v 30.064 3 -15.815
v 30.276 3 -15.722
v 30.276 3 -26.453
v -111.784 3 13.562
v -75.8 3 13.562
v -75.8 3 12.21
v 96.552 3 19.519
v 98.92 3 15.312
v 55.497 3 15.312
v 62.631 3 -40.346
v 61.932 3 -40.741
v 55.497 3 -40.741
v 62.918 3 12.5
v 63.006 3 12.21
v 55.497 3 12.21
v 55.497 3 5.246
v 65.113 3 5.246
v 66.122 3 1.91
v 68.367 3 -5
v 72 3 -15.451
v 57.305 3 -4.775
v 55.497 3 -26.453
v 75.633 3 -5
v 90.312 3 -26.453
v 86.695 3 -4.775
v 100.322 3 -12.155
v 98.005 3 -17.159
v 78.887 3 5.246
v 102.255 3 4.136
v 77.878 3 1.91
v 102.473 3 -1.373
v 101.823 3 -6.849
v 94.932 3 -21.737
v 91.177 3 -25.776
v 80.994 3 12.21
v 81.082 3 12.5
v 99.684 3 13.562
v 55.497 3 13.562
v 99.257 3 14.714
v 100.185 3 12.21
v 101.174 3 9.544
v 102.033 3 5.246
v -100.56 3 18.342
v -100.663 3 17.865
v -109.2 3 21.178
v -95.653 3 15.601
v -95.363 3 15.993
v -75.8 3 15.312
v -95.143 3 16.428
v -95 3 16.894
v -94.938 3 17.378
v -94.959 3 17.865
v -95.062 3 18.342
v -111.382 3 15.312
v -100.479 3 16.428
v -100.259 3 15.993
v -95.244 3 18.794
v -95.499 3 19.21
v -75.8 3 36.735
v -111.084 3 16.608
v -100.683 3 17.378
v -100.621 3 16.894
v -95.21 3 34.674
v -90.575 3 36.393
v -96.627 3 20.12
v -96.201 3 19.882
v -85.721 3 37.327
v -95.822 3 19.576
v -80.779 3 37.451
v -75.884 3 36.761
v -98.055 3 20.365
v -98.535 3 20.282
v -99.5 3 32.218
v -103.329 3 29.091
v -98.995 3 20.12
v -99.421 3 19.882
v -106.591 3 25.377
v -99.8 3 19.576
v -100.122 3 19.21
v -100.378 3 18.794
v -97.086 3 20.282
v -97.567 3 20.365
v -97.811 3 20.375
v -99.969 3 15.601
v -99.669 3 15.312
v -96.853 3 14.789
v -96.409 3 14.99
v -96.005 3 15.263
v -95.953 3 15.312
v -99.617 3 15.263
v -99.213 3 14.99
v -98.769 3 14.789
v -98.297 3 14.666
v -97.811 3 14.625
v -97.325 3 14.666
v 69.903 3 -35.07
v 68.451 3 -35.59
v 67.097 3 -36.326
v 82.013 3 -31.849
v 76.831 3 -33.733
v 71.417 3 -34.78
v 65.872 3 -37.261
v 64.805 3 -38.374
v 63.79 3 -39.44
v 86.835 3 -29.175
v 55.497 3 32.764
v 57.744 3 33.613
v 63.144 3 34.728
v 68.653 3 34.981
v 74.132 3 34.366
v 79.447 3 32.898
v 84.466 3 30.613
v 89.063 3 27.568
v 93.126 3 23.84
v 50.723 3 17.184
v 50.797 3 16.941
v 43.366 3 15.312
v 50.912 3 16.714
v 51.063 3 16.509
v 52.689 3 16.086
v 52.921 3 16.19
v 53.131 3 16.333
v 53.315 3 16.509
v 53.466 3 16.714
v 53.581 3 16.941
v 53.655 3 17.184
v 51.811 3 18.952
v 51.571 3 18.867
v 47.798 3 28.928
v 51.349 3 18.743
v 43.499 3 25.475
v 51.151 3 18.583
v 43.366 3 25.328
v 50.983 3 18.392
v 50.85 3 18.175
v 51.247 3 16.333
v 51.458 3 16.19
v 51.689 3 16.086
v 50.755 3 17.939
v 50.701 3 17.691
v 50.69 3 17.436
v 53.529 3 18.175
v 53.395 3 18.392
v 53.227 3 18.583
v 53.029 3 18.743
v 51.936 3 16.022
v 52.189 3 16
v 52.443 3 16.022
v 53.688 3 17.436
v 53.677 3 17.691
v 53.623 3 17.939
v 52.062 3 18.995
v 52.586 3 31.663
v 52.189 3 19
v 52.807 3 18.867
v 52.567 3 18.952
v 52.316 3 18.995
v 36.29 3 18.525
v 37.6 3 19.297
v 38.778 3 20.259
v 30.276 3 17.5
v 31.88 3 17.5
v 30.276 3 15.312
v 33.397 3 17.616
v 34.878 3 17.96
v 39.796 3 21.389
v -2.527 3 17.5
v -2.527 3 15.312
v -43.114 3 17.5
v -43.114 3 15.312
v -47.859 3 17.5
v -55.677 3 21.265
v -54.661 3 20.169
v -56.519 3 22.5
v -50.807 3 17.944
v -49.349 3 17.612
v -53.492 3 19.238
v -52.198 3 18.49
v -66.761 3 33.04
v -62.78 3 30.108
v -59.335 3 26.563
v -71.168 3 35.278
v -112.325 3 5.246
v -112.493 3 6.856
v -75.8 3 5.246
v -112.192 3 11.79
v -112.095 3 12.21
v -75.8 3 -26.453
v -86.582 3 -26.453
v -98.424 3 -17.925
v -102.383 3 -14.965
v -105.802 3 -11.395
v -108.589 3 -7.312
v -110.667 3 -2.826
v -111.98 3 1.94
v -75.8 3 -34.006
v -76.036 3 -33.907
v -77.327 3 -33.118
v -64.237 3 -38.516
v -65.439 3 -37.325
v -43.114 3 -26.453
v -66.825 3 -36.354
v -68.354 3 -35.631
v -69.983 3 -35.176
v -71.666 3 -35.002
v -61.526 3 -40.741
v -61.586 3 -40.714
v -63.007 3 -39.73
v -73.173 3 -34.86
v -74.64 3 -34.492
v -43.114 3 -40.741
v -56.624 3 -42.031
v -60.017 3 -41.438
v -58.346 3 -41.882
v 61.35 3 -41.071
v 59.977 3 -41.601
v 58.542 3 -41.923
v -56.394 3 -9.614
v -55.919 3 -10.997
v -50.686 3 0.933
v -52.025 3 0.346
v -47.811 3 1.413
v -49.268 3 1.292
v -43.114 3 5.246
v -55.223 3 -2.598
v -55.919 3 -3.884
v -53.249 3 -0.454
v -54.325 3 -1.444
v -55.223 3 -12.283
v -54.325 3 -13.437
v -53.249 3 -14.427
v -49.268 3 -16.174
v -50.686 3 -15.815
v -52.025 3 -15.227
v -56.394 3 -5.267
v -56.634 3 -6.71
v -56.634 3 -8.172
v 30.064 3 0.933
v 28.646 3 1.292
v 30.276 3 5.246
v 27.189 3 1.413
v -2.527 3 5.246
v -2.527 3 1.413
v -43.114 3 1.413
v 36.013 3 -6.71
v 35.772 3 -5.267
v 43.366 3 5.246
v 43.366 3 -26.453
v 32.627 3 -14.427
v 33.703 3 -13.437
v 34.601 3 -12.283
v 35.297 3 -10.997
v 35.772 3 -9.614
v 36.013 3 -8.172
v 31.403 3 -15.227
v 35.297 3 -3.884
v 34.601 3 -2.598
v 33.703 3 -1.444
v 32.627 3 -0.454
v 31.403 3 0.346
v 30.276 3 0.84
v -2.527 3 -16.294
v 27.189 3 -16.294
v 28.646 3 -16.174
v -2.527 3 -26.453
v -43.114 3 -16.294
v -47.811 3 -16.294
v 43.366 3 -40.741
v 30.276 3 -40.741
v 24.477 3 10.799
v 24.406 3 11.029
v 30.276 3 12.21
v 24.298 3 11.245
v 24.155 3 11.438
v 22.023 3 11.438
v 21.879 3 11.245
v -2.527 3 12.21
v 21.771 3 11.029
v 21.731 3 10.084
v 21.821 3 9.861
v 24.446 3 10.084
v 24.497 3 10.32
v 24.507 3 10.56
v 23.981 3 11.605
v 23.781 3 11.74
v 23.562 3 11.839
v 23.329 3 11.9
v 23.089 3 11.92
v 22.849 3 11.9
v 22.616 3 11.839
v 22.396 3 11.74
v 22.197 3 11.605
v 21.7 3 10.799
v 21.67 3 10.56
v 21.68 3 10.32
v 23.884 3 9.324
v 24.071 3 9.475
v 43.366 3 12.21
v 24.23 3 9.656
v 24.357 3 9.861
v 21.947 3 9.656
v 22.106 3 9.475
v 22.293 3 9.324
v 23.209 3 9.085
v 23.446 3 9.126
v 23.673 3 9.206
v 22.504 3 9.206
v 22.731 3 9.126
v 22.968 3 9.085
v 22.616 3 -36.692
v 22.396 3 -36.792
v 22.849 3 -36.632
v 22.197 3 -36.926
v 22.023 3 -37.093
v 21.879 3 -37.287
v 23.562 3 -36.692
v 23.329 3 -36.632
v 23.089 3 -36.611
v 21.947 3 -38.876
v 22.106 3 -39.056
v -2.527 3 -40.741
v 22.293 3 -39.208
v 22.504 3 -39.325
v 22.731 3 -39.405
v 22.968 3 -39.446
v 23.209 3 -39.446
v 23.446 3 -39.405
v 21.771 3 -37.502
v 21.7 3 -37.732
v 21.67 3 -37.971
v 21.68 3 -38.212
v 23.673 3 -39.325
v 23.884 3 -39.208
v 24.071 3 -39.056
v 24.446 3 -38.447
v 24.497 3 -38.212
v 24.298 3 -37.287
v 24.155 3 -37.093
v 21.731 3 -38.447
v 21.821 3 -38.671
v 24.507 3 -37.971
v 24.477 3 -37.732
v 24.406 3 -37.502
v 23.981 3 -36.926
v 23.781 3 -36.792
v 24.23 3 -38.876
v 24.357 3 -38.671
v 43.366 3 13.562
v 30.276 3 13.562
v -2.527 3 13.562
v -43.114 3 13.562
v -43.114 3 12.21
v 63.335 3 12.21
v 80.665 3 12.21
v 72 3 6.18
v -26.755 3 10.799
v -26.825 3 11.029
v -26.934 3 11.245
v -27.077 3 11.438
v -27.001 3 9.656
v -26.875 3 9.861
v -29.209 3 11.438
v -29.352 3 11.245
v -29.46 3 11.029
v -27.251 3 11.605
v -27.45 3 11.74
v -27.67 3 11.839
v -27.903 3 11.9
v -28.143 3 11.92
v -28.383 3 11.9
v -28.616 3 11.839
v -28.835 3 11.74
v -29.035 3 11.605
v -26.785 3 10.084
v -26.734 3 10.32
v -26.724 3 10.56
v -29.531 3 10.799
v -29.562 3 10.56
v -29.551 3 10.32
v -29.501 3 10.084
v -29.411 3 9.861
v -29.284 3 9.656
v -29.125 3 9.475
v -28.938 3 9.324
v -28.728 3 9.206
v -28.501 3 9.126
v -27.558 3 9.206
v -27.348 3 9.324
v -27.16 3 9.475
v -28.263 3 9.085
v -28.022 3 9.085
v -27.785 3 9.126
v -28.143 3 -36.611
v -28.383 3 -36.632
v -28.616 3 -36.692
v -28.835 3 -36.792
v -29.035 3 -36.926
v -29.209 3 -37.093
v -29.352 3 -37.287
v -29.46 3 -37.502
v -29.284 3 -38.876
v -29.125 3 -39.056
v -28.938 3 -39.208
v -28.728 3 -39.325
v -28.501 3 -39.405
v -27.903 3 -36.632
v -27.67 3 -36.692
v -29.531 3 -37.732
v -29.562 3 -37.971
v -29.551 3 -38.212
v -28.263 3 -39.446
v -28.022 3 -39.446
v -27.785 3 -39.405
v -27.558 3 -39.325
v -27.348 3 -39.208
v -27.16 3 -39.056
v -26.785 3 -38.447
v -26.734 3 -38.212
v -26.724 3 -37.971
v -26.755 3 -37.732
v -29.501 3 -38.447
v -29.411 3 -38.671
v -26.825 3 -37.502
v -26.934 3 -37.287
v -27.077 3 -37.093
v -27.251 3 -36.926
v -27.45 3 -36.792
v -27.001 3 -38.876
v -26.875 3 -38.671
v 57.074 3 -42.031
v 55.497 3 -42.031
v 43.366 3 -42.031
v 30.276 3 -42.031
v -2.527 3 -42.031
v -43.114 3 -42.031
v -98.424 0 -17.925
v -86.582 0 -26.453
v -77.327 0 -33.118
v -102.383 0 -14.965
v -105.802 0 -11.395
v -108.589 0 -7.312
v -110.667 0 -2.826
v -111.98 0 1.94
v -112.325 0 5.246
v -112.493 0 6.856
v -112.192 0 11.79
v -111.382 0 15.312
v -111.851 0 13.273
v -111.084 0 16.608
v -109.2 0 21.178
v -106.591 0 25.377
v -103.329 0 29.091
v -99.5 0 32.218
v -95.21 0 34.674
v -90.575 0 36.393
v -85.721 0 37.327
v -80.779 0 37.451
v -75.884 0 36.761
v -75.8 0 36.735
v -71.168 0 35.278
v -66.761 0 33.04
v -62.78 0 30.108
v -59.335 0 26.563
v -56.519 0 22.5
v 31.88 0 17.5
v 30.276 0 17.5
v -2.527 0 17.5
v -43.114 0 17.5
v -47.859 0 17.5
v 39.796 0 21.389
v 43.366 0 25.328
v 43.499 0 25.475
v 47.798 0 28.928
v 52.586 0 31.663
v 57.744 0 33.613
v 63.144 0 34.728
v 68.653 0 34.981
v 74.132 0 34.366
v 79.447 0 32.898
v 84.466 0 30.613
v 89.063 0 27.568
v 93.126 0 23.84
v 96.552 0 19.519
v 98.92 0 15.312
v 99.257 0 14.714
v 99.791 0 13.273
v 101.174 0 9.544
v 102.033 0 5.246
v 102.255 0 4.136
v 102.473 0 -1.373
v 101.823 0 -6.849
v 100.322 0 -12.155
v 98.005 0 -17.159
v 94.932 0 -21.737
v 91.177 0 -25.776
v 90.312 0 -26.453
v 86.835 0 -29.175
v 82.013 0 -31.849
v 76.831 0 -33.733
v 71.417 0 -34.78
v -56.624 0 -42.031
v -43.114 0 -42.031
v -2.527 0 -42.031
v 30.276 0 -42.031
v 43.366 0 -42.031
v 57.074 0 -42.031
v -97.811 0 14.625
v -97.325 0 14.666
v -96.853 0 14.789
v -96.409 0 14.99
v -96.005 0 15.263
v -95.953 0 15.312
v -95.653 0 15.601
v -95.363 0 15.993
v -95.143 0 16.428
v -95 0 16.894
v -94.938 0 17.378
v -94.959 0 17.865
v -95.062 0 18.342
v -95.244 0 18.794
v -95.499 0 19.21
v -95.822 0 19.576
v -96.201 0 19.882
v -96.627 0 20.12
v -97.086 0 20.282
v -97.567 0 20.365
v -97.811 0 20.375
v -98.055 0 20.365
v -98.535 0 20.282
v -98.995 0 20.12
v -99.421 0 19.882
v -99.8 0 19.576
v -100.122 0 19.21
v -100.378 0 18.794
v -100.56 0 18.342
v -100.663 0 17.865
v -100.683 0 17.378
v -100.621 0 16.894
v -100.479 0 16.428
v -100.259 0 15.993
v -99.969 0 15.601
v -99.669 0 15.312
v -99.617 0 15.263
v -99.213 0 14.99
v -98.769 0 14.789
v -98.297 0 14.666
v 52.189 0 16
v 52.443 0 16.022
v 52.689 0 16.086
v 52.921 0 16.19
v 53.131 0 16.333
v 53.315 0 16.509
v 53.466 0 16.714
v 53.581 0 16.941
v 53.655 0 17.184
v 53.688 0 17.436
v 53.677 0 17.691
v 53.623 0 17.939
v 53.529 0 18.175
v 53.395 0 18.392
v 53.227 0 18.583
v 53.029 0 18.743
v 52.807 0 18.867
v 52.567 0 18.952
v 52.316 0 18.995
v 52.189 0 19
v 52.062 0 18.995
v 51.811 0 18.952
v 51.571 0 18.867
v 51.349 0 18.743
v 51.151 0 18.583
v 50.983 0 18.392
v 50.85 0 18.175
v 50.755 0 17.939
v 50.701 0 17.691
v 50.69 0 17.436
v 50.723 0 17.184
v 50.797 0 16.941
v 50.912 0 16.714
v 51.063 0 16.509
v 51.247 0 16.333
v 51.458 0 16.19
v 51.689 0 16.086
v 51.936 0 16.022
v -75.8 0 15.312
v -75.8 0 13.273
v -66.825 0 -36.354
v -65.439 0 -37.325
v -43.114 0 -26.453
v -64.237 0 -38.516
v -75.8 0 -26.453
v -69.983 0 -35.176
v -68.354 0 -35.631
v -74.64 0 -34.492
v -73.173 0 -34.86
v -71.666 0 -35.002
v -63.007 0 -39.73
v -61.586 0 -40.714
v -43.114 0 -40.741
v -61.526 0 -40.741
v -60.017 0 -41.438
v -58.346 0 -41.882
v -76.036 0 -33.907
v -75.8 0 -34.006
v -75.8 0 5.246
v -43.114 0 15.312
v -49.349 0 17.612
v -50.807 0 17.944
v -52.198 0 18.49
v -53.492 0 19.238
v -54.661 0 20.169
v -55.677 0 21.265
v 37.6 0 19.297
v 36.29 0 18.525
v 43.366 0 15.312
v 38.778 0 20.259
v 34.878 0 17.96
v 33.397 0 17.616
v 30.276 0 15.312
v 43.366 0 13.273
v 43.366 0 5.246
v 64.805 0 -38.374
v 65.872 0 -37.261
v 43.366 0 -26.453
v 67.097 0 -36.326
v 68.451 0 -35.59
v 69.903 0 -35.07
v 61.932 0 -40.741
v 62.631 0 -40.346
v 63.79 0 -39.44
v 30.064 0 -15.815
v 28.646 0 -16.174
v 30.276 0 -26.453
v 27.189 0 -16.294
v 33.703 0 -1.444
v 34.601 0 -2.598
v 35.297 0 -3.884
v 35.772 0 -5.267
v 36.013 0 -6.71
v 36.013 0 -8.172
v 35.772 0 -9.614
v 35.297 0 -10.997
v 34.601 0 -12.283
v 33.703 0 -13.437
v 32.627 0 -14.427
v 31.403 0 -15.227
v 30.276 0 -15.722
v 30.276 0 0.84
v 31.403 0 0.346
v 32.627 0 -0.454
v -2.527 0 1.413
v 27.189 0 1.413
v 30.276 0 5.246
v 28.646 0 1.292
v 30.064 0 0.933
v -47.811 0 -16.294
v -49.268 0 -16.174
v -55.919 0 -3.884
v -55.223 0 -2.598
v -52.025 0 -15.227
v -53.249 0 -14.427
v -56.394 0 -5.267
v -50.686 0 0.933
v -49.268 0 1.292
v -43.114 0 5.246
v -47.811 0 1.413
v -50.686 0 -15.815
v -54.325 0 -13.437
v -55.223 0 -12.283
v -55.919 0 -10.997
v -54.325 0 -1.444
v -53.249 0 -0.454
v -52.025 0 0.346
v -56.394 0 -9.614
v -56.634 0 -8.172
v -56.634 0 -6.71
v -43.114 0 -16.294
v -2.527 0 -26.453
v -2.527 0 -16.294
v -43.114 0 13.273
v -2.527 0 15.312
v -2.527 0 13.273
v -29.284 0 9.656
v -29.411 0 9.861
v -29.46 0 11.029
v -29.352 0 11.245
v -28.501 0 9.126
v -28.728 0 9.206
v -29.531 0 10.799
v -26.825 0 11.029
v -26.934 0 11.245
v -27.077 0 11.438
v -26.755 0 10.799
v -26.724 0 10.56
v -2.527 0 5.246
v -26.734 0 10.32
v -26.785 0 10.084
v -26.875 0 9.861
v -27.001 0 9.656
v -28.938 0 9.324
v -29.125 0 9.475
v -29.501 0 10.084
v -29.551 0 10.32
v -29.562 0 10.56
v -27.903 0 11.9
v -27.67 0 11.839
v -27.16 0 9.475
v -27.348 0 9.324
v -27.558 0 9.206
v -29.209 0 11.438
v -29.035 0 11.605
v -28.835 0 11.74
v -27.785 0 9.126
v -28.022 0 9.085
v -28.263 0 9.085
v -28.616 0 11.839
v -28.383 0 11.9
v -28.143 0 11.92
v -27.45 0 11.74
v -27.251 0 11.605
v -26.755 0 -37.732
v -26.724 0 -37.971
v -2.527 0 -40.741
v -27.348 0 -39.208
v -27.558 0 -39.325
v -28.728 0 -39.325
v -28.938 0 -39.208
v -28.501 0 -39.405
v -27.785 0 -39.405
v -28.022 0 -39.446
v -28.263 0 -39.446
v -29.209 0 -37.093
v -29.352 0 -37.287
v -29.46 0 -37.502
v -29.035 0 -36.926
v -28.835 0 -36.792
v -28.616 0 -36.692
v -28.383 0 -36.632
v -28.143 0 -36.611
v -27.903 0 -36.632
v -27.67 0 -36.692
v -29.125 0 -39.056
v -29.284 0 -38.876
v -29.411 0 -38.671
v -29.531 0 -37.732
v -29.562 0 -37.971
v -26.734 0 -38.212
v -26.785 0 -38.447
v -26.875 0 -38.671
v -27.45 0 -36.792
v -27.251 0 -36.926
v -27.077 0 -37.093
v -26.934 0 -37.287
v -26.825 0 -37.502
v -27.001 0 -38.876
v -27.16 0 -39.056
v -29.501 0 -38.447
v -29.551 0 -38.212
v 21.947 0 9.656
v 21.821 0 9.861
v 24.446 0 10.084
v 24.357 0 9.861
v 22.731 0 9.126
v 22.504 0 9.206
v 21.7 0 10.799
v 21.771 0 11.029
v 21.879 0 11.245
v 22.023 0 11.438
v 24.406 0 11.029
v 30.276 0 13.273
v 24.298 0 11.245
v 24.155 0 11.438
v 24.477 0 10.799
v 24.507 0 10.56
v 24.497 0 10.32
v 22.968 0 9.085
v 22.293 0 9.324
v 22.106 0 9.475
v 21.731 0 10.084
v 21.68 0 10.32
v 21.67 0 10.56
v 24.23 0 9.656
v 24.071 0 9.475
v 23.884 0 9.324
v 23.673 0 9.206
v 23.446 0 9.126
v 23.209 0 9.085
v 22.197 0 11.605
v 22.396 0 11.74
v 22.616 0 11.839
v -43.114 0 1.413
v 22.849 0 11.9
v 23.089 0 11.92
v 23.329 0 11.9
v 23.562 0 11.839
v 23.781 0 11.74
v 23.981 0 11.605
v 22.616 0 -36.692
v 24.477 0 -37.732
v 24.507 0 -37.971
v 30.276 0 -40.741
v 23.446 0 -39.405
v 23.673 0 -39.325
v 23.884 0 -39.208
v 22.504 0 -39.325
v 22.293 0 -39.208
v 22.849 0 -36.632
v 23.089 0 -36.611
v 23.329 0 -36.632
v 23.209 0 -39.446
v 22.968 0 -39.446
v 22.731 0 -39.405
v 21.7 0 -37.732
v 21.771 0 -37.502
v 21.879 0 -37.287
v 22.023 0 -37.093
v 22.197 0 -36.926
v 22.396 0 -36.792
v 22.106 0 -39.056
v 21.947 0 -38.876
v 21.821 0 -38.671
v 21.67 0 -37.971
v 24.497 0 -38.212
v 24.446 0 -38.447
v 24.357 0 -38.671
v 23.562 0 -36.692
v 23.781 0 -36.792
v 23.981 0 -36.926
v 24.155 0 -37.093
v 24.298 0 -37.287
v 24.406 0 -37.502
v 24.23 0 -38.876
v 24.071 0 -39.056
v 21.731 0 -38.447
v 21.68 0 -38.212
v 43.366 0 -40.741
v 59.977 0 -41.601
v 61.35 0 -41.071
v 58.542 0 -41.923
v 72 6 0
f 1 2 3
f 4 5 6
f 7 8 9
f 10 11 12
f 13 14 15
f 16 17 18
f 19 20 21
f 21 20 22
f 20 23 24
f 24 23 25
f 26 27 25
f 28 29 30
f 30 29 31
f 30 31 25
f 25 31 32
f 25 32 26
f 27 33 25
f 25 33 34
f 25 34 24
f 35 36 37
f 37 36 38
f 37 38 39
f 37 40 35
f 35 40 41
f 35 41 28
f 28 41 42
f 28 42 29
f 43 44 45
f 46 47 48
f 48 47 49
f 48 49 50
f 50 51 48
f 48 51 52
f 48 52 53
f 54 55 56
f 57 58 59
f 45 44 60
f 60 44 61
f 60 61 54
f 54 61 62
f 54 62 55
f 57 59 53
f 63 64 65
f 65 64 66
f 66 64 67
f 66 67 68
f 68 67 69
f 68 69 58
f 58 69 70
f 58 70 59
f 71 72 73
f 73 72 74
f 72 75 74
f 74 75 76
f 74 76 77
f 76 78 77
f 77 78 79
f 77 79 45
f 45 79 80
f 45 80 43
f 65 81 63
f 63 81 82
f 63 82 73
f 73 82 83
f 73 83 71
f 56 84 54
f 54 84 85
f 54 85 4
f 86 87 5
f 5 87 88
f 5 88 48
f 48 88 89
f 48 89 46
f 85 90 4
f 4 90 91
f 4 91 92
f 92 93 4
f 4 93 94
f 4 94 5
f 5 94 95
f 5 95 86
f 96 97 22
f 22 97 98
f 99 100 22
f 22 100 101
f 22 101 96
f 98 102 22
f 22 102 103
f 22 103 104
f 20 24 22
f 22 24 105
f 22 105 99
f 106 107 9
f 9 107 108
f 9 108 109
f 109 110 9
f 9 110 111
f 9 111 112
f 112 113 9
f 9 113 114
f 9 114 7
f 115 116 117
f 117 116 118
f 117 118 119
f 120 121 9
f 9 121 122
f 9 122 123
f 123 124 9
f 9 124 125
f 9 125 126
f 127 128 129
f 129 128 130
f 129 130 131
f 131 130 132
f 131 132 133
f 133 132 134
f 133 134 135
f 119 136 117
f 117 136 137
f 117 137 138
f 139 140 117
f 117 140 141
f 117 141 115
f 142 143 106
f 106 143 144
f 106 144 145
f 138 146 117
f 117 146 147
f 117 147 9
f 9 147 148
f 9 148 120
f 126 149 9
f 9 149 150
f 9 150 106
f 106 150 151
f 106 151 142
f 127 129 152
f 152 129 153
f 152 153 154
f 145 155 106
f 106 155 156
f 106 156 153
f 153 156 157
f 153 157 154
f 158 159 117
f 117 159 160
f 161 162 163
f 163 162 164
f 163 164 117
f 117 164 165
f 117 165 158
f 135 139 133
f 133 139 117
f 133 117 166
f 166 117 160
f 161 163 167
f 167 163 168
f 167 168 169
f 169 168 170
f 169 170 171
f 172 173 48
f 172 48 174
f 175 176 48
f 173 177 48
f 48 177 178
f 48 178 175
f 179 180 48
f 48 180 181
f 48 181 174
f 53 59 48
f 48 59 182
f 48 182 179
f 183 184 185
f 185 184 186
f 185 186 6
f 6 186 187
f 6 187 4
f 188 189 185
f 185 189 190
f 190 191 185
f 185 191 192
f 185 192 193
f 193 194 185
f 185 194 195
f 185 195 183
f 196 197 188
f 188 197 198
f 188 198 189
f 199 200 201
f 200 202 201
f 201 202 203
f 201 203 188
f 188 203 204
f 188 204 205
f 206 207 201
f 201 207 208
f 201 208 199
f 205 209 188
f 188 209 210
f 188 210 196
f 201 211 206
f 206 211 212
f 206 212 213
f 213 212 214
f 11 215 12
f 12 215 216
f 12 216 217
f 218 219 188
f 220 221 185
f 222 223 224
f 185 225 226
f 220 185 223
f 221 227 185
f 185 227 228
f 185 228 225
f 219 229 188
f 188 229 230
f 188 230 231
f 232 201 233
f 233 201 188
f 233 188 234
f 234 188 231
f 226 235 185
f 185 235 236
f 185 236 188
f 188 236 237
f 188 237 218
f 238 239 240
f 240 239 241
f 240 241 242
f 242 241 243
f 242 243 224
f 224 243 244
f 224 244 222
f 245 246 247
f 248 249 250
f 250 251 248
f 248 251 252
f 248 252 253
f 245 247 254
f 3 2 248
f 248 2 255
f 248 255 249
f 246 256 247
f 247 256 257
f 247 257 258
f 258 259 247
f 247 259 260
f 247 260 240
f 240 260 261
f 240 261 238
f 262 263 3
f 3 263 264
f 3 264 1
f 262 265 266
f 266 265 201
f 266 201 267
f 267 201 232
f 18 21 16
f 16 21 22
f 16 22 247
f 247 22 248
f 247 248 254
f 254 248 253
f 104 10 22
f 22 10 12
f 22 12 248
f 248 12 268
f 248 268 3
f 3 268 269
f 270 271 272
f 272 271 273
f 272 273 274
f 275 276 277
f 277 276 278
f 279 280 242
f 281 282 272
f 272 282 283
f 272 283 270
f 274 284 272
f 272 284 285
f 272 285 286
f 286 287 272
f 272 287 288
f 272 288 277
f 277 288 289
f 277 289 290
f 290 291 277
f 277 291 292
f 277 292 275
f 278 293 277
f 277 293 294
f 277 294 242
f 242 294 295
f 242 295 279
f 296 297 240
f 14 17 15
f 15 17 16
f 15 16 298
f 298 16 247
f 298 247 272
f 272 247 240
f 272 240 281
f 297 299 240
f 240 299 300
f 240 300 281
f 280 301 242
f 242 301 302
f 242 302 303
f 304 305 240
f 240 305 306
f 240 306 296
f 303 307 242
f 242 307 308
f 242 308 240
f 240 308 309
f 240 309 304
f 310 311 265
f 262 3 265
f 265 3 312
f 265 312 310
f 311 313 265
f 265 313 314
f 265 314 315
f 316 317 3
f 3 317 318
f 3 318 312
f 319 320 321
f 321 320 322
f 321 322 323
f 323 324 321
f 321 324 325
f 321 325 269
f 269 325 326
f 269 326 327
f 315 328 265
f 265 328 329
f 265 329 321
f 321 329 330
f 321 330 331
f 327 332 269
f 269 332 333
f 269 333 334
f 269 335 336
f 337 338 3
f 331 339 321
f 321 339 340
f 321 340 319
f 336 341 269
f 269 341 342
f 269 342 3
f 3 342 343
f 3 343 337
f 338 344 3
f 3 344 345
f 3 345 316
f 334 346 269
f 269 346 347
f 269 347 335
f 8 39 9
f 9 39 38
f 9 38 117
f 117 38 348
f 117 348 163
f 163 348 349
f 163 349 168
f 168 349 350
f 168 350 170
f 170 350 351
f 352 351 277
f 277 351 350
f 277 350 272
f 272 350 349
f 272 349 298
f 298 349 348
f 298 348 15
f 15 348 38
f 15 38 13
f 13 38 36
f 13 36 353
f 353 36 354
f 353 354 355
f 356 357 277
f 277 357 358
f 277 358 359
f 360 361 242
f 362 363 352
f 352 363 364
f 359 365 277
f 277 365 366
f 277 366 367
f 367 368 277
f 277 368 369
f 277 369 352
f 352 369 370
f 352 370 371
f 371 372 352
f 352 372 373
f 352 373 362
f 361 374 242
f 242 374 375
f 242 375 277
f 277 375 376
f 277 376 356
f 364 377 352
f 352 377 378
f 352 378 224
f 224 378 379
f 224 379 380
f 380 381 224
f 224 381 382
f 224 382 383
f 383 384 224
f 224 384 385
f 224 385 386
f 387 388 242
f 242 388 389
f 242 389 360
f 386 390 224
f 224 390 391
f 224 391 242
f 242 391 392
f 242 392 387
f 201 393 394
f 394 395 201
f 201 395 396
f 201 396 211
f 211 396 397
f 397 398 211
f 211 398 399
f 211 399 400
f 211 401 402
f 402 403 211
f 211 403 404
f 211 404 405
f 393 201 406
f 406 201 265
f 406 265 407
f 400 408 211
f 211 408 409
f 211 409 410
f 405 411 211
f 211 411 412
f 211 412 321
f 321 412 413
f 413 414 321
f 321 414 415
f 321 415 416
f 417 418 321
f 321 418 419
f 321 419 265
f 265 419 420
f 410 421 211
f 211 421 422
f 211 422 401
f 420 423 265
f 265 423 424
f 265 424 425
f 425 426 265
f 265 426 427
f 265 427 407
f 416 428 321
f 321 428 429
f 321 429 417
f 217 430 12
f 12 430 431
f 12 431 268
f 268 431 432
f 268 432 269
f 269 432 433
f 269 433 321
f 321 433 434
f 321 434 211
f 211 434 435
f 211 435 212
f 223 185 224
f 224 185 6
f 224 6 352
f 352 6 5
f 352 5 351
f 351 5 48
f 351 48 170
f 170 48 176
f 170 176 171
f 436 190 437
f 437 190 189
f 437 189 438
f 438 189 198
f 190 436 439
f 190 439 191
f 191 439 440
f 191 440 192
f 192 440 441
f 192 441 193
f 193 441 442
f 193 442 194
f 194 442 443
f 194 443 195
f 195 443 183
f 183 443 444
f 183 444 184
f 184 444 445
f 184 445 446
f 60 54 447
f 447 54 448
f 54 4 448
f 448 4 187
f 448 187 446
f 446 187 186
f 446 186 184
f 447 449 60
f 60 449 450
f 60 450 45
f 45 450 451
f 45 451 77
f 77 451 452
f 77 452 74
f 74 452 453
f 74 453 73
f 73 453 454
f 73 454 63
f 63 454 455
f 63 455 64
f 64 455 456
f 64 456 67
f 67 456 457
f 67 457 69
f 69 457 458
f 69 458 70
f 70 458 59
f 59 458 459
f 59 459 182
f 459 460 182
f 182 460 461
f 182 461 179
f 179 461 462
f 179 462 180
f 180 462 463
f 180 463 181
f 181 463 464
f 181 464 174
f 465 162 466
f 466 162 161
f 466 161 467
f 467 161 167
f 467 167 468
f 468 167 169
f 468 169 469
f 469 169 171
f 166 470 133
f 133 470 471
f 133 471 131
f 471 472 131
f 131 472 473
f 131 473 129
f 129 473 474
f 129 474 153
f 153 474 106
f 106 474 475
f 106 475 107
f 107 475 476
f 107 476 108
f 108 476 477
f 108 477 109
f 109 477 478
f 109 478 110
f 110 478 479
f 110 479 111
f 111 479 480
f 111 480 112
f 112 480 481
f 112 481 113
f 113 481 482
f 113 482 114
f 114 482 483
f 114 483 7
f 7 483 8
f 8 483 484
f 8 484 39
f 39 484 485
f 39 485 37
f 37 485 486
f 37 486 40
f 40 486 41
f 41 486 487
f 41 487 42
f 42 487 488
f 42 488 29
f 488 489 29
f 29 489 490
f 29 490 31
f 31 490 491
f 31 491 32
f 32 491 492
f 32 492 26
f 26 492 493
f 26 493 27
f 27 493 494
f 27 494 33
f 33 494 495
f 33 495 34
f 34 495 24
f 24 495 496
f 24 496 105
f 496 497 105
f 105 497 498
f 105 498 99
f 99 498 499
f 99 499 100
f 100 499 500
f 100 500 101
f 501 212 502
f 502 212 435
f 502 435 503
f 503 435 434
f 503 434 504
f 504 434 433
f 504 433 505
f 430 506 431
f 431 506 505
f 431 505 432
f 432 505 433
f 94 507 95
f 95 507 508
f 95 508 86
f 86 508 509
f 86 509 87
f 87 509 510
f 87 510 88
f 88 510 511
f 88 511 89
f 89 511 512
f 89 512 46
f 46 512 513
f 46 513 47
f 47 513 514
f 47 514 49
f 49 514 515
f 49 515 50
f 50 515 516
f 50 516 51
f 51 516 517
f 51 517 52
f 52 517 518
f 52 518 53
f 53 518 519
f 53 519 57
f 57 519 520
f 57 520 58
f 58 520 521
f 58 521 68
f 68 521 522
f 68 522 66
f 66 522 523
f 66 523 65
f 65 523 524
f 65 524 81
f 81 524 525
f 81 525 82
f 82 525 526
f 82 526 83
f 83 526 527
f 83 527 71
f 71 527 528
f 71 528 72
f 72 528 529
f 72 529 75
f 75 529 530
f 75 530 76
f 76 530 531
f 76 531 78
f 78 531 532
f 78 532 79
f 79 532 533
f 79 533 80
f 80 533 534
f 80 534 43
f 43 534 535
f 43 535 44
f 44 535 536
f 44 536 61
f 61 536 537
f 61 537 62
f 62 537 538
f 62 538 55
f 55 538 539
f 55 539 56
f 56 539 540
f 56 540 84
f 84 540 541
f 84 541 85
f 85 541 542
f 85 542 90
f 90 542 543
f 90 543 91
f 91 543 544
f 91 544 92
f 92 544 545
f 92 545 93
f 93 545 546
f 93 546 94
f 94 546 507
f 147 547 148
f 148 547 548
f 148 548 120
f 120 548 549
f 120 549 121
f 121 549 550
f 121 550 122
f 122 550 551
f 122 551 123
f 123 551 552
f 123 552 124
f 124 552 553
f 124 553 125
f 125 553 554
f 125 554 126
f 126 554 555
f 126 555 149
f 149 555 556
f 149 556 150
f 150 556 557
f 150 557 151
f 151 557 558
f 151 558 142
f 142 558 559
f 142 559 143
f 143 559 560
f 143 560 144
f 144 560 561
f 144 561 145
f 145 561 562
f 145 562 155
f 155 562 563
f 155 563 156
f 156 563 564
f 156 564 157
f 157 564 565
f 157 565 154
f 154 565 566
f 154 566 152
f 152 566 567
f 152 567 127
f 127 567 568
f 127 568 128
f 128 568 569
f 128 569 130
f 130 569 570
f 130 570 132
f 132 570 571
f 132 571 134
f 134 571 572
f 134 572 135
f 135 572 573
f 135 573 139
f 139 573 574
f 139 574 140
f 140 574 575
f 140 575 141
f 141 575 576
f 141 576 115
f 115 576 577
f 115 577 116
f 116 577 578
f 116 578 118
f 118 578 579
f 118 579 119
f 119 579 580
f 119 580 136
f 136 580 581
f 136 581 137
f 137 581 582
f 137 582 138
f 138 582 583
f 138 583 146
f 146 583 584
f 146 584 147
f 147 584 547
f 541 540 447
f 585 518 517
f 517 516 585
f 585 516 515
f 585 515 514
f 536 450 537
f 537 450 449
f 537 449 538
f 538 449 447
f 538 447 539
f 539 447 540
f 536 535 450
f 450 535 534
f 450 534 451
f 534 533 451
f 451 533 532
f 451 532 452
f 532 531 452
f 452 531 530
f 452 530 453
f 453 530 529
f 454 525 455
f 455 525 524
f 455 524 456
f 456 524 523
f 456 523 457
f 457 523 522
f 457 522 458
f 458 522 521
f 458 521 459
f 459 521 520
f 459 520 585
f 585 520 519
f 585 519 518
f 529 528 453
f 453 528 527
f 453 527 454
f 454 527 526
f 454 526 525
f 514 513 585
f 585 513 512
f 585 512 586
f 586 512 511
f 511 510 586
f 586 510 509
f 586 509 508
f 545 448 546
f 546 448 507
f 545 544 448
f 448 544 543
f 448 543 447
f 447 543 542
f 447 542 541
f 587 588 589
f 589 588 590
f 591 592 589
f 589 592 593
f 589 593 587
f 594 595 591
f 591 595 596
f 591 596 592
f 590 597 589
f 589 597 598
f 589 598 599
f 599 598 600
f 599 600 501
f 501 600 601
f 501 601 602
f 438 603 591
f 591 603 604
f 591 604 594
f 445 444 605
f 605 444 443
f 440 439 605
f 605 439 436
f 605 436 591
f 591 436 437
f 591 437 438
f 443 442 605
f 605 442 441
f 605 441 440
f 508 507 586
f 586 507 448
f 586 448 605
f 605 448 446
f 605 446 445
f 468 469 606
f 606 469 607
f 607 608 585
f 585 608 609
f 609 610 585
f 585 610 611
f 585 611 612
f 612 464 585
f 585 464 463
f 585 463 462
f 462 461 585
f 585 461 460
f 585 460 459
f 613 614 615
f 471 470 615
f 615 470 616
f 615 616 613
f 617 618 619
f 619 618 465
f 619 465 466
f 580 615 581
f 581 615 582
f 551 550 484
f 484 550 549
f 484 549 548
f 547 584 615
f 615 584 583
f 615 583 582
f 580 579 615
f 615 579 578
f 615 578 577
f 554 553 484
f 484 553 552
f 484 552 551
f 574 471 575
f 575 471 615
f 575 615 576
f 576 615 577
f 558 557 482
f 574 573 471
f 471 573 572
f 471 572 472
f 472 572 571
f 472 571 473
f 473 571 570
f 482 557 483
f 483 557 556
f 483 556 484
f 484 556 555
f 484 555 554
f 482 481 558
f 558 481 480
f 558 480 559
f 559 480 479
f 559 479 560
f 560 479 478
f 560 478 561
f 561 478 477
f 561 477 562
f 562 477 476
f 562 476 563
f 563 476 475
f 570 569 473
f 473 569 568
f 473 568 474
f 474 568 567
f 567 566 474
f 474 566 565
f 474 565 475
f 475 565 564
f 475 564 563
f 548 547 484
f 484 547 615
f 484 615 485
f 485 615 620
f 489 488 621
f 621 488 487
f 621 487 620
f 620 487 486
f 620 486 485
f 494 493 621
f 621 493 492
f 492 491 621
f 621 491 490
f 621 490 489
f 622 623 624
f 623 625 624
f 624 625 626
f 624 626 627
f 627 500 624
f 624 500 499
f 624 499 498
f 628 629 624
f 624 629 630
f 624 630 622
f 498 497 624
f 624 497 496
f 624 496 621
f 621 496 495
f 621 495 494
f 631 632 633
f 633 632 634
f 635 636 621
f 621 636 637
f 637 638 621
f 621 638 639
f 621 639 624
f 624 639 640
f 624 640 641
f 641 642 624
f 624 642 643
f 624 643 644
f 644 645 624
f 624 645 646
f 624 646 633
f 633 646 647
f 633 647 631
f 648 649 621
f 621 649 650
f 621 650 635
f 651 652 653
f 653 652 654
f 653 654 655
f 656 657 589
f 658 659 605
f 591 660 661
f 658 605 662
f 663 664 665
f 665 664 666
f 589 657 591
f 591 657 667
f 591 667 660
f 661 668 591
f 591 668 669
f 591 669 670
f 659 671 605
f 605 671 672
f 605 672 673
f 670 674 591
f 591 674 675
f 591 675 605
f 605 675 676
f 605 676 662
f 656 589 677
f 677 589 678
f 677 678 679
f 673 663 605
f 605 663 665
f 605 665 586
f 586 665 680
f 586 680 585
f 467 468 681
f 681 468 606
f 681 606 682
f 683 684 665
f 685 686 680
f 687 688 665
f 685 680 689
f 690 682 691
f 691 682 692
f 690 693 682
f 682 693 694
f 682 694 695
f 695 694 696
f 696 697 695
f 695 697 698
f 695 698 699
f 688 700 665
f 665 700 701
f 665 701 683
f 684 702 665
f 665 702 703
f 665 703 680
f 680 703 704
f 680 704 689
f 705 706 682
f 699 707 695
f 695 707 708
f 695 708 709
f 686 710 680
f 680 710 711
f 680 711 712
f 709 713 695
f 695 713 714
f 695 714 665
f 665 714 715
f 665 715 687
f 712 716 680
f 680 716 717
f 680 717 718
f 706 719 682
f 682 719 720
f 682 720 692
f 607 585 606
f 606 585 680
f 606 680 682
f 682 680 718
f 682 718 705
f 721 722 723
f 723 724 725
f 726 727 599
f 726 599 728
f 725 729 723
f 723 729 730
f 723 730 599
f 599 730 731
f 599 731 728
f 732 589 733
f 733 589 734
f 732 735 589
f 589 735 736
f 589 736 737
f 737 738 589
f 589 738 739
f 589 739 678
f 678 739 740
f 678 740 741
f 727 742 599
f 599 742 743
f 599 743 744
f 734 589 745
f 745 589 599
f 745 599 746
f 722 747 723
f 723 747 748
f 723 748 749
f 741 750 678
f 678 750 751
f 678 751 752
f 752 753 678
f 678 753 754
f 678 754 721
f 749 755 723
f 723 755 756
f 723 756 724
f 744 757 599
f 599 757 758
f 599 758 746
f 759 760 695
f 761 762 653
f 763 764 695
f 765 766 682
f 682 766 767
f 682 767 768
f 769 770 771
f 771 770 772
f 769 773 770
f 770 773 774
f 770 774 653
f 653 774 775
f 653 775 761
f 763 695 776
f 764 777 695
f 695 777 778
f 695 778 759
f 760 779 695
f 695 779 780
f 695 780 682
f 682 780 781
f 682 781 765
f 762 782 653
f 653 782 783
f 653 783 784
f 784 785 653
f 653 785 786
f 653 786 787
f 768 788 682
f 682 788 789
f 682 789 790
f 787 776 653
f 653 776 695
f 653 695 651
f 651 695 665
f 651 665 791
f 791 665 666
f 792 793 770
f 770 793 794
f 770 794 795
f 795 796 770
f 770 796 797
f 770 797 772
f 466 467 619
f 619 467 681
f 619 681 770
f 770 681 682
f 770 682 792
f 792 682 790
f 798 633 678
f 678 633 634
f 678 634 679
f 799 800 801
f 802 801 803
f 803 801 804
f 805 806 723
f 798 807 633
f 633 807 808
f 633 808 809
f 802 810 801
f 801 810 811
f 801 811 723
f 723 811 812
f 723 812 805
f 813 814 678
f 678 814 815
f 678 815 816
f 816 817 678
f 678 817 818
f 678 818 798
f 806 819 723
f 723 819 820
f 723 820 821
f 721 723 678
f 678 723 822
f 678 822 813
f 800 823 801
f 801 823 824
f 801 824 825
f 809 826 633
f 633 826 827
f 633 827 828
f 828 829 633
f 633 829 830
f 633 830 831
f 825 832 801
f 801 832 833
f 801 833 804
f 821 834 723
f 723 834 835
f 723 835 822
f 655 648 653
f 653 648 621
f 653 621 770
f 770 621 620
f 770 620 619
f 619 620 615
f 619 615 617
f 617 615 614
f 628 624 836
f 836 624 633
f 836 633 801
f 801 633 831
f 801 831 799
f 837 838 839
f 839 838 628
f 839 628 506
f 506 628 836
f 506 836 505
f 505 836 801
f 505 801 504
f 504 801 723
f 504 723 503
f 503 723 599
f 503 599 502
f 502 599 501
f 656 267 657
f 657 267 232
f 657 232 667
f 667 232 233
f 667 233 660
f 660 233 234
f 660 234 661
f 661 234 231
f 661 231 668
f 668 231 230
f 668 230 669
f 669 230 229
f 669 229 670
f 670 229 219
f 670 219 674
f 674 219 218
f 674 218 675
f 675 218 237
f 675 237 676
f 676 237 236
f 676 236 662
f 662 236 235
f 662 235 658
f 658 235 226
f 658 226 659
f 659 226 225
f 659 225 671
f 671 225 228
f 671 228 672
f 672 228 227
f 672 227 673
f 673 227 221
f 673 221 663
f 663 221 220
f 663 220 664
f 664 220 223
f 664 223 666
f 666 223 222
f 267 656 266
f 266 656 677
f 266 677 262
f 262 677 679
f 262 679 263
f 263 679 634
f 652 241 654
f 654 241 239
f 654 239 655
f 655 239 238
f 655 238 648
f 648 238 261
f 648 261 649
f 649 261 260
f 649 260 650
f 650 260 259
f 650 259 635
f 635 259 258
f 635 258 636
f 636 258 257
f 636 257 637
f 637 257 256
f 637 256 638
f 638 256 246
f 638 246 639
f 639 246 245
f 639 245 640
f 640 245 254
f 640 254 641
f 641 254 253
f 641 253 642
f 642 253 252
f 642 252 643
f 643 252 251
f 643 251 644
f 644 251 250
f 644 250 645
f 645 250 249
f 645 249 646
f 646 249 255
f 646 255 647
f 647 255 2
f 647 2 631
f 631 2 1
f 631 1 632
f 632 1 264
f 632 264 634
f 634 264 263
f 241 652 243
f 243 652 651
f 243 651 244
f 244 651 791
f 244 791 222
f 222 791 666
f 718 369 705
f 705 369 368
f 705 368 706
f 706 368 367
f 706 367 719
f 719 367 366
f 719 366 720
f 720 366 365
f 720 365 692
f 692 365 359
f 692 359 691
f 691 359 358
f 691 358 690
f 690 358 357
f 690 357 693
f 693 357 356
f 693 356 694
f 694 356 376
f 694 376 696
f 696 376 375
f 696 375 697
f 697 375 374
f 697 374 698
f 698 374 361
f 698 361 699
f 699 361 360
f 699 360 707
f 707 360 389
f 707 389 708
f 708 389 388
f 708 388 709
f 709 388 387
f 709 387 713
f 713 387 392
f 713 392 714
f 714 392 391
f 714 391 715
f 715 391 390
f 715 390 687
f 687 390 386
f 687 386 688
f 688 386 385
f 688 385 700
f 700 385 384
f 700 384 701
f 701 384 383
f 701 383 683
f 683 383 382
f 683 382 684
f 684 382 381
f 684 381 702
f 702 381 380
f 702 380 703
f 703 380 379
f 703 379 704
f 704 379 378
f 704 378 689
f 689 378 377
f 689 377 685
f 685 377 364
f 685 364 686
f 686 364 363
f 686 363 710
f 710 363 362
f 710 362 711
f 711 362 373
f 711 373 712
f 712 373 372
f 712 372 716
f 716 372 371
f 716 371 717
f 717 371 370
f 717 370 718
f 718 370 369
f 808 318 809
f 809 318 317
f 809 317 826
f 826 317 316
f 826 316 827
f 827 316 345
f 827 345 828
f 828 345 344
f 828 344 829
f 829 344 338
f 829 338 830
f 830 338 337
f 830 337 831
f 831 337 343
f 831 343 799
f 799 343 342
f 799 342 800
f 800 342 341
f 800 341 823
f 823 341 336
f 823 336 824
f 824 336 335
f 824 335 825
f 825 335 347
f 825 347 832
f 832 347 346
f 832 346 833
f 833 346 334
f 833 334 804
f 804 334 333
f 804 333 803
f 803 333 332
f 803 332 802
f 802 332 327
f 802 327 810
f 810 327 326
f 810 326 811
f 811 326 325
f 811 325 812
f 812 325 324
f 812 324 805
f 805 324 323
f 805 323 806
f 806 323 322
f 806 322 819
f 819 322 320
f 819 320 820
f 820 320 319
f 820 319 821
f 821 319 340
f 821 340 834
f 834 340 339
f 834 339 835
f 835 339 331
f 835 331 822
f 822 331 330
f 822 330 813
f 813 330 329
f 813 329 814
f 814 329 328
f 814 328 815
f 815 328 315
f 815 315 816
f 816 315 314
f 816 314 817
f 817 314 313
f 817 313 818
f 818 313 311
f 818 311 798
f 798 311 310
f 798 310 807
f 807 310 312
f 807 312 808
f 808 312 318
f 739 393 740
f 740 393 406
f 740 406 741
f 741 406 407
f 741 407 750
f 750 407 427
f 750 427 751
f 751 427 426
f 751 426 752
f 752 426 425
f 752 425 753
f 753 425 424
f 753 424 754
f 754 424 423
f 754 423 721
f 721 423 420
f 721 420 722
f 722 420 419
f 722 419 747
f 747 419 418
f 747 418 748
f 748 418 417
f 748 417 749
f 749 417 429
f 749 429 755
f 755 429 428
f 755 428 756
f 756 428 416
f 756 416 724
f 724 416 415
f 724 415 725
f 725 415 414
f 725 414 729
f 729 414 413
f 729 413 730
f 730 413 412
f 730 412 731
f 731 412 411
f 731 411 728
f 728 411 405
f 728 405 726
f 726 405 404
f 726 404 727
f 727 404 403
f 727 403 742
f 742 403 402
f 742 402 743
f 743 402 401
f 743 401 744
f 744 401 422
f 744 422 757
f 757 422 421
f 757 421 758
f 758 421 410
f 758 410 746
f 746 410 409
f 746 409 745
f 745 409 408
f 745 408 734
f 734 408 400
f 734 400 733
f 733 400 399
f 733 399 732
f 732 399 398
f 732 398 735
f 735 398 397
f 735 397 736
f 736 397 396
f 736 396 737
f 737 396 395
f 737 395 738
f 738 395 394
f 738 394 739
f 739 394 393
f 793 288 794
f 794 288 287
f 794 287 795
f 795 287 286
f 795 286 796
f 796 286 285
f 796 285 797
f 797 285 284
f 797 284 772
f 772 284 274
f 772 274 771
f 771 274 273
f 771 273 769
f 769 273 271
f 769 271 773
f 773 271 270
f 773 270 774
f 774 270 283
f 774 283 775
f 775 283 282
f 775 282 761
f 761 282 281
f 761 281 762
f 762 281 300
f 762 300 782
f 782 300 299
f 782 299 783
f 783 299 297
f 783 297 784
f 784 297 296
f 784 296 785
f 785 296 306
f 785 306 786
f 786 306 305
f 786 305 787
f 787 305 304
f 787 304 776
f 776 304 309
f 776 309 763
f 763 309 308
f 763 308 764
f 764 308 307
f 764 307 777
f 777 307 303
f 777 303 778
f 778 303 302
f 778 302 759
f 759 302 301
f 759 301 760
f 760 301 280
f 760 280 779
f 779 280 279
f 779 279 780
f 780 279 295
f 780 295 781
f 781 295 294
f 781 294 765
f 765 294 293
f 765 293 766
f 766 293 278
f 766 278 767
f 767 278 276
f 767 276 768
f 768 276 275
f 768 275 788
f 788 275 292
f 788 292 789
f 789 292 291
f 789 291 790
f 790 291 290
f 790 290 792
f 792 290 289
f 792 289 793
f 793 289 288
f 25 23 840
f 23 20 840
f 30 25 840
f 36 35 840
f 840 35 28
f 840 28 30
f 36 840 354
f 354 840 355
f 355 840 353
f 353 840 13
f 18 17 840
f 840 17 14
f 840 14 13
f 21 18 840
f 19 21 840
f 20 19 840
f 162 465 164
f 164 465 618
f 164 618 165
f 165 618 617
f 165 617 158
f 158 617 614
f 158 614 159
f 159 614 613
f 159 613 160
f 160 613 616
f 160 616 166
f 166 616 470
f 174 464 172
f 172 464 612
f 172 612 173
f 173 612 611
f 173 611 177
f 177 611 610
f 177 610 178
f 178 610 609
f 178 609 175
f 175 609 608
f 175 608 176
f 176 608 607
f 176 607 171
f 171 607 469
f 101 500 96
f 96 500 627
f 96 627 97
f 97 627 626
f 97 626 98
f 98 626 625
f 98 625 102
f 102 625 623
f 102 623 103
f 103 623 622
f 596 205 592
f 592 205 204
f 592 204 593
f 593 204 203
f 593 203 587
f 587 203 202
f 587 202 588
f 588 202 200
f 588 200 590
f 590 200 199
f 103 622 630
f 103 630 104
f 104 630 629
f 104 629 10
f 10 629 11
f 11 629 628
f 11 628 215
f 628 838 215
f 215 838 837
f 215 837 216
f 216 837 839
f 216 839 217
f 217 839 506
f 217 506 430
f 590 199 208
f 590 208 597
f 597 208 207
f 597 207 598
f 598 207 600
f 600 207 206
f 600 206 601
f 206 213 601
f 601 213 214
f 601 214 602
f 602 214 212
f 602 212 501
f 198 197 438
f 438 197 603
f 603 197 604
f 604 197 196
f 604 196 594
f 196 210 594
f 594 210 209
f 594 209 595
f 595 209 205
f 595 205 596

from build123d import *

# Parameters (mm, degrees)
SKETCH1_R           = 2.875
SKETCH1_R_2         = 1.5
BOSS_EXTRUDE1_DEPTH = 3
CUT_EXTRUDE1_DEPTH  = 10
SKETCH3_R           = 1.42
CUT_EXTRUDE2_DEPTH  = 20
FILLET3_R           = 10
FILLET5_R           = 10
FILLET6_R           = 10


with BuildPart() as part:
    # Sketch1 → Boss-Extrude1 (new body)
    with BuildSketch(Plane(origin=(0, 0, 0), x_dir=(1, 0, 0), z_dir=(0, 1, 0))):
        with BuildLine():
            Line((-61.421696796, 42.03125), (-67.039661146, 35))
            Line((-67.039661146, 35), (-74.713671979, 35))
            Line((-74.713671979, 35), (-98.423870832, 17.924994351))
            ThreePointArc((-98.423870832, 17.924994351), (-101.259728964, -30.910949772), (-54.215728753, -17.5))
            Line((-54.215728753, -17.5), (37.189110868, -17.5))
            ThreePointArc((37.189110868, -17.5), (97.810889132, -17.5), (67.5, 35))
            Line((67.5, 35), (61.88203565, 42.03125))
            Line((61.88203565, 42.03125), (-61.421696796, 42.03125))
        make_face()
        with Locations(Location((-97.810889132, -17.5, 0), (0, 0, 270))):
            Circle(SKETCH1_R, mode=Mode.SUBTRACT)
        with Locations(Location((52.189110868, -17.5, 0), (0, 0, 270))):
            Circle(SKETCH1_R_2, mode=Mode.SUBTRACT)
    extrude(amount=BOSS_EXTRUDE1_DEPTH)

    # Sketch2 → Cut-Extrude1 (cut)
    with BuildSketch(Plane(origin=(0, 3, 0), x_dir=(1, 0, 0), z_dir=(0, 1, 0))):
        with BuildLine():
            Line((-47.810889132, 16.294274109), (27.189110868, 16.294274109))
            ThreePointArc((27.189110868, 16.294274109), (36.042740422, 7.440644555), (27.189110868, -1.412984999))
            Line((27.189110868, -1.412984999), (-47.810889132, -1.412984999))
            ThreePointArc((-47.810889132, -1.412984999), (-56.664518687, 7.440644555), (-47.810889132, 16.294274109))
        make_face()
    extrude(amount=-CUT_EXTRUDE1_DEPTH, mode=Mode.SUBTRACT)

    # Sketch3 → Cut-Extrude2 (cut)
    with BuildSketch(Plane(origin=(0, 3, 0), x_dir=(1, 0, 0), z_dir=(0, 1, 0))):
        with Locations(Location((-28.142811364, -10.5, 0), (0, 0, 270))):
            Circle(SKETCH3_R)
        with Locations(Location((23.088594579, -10.5, 0), (0, 0, 270))):
            Circle(SKETCH3_R)
        with Locations(Location((-28.142811364, 38.03125, 0), (0, 0, 270))):
            Circle(SKETCH3_R)
        with Locations(Location((23.088594579, 38.03125, 0), (0, 0, 270))):
            Circle(SKETCH3_R)
    extrude(amount=-CUT_EXTRUDE2_DEPTH, mode=Mode.SUBTRACT)

    # Sketch6 → Loft1 section 0
    with BuildSketch(Plane(origin=(0, 3, 0), x_dir=(1, 0, 0), z_dir=(0, 1, 0)), mode=Mode.PRIVATE) as loft1_s0:
        with BuildLine():
            Line((72, 15.450849719), (75.63271264, 5))
            Line((75.63271264, 5), (86.694631307, 4.774575141))
            Line((86.694631307, 4.774575141), (77.877852523, -1.909830056))
            Line((77.877852523, -1.909830056), (81.0817816, -12.5))
            Line((81.0817816, -12.5), (72, -6.180339887))
            Line((72, -6.180339887), (62.9182184, -12.5))
            Line((62.9182184, -12.5), (66.122147477, -1.909830056))
            Line((66.122147477, -1.909830056), (57.305368693, 4.774575141))
            Line((57.305368693, 4.774575141), (68.36728736, 5))
            Line((68.36728736, 5), (72, 15.450849719))
        make_face()
    loft([Vertex(72, 6, 0), loft1_s0.sketch])

    # Fillet3
    fillet3_edges = [part.edges().sort_by_distance(p)[0] for p in [
        (37.189110868, 1.5, 17.5),
        (-54.215728753, 1.5, 17.5),
    ]]
    fillet(fillet3_edges, radius=FILLET3_R)

    # Fillet5
    fillet5_edges = [part.edges().sort_by_distance(p)[0] for p in [
        (-67.039661146, 1.5, -35),
        (67.5, 1.5, -35),
    ]]
    fillet(fillet5_edges, radius=FILLET5_R)

    # Fillet6
    fillet6_edges = [part.edges().sort_by_distance(p)[0] for p in [
        (61.88203565, 1.5, -42.03125),
        (-61.421696796, 1.5, -42.03125),
        (-74.713671979, 1.5, -35),
    ]]
    fillet(fillet6_edges, radius=FILLET6_R)


solid = part.part
